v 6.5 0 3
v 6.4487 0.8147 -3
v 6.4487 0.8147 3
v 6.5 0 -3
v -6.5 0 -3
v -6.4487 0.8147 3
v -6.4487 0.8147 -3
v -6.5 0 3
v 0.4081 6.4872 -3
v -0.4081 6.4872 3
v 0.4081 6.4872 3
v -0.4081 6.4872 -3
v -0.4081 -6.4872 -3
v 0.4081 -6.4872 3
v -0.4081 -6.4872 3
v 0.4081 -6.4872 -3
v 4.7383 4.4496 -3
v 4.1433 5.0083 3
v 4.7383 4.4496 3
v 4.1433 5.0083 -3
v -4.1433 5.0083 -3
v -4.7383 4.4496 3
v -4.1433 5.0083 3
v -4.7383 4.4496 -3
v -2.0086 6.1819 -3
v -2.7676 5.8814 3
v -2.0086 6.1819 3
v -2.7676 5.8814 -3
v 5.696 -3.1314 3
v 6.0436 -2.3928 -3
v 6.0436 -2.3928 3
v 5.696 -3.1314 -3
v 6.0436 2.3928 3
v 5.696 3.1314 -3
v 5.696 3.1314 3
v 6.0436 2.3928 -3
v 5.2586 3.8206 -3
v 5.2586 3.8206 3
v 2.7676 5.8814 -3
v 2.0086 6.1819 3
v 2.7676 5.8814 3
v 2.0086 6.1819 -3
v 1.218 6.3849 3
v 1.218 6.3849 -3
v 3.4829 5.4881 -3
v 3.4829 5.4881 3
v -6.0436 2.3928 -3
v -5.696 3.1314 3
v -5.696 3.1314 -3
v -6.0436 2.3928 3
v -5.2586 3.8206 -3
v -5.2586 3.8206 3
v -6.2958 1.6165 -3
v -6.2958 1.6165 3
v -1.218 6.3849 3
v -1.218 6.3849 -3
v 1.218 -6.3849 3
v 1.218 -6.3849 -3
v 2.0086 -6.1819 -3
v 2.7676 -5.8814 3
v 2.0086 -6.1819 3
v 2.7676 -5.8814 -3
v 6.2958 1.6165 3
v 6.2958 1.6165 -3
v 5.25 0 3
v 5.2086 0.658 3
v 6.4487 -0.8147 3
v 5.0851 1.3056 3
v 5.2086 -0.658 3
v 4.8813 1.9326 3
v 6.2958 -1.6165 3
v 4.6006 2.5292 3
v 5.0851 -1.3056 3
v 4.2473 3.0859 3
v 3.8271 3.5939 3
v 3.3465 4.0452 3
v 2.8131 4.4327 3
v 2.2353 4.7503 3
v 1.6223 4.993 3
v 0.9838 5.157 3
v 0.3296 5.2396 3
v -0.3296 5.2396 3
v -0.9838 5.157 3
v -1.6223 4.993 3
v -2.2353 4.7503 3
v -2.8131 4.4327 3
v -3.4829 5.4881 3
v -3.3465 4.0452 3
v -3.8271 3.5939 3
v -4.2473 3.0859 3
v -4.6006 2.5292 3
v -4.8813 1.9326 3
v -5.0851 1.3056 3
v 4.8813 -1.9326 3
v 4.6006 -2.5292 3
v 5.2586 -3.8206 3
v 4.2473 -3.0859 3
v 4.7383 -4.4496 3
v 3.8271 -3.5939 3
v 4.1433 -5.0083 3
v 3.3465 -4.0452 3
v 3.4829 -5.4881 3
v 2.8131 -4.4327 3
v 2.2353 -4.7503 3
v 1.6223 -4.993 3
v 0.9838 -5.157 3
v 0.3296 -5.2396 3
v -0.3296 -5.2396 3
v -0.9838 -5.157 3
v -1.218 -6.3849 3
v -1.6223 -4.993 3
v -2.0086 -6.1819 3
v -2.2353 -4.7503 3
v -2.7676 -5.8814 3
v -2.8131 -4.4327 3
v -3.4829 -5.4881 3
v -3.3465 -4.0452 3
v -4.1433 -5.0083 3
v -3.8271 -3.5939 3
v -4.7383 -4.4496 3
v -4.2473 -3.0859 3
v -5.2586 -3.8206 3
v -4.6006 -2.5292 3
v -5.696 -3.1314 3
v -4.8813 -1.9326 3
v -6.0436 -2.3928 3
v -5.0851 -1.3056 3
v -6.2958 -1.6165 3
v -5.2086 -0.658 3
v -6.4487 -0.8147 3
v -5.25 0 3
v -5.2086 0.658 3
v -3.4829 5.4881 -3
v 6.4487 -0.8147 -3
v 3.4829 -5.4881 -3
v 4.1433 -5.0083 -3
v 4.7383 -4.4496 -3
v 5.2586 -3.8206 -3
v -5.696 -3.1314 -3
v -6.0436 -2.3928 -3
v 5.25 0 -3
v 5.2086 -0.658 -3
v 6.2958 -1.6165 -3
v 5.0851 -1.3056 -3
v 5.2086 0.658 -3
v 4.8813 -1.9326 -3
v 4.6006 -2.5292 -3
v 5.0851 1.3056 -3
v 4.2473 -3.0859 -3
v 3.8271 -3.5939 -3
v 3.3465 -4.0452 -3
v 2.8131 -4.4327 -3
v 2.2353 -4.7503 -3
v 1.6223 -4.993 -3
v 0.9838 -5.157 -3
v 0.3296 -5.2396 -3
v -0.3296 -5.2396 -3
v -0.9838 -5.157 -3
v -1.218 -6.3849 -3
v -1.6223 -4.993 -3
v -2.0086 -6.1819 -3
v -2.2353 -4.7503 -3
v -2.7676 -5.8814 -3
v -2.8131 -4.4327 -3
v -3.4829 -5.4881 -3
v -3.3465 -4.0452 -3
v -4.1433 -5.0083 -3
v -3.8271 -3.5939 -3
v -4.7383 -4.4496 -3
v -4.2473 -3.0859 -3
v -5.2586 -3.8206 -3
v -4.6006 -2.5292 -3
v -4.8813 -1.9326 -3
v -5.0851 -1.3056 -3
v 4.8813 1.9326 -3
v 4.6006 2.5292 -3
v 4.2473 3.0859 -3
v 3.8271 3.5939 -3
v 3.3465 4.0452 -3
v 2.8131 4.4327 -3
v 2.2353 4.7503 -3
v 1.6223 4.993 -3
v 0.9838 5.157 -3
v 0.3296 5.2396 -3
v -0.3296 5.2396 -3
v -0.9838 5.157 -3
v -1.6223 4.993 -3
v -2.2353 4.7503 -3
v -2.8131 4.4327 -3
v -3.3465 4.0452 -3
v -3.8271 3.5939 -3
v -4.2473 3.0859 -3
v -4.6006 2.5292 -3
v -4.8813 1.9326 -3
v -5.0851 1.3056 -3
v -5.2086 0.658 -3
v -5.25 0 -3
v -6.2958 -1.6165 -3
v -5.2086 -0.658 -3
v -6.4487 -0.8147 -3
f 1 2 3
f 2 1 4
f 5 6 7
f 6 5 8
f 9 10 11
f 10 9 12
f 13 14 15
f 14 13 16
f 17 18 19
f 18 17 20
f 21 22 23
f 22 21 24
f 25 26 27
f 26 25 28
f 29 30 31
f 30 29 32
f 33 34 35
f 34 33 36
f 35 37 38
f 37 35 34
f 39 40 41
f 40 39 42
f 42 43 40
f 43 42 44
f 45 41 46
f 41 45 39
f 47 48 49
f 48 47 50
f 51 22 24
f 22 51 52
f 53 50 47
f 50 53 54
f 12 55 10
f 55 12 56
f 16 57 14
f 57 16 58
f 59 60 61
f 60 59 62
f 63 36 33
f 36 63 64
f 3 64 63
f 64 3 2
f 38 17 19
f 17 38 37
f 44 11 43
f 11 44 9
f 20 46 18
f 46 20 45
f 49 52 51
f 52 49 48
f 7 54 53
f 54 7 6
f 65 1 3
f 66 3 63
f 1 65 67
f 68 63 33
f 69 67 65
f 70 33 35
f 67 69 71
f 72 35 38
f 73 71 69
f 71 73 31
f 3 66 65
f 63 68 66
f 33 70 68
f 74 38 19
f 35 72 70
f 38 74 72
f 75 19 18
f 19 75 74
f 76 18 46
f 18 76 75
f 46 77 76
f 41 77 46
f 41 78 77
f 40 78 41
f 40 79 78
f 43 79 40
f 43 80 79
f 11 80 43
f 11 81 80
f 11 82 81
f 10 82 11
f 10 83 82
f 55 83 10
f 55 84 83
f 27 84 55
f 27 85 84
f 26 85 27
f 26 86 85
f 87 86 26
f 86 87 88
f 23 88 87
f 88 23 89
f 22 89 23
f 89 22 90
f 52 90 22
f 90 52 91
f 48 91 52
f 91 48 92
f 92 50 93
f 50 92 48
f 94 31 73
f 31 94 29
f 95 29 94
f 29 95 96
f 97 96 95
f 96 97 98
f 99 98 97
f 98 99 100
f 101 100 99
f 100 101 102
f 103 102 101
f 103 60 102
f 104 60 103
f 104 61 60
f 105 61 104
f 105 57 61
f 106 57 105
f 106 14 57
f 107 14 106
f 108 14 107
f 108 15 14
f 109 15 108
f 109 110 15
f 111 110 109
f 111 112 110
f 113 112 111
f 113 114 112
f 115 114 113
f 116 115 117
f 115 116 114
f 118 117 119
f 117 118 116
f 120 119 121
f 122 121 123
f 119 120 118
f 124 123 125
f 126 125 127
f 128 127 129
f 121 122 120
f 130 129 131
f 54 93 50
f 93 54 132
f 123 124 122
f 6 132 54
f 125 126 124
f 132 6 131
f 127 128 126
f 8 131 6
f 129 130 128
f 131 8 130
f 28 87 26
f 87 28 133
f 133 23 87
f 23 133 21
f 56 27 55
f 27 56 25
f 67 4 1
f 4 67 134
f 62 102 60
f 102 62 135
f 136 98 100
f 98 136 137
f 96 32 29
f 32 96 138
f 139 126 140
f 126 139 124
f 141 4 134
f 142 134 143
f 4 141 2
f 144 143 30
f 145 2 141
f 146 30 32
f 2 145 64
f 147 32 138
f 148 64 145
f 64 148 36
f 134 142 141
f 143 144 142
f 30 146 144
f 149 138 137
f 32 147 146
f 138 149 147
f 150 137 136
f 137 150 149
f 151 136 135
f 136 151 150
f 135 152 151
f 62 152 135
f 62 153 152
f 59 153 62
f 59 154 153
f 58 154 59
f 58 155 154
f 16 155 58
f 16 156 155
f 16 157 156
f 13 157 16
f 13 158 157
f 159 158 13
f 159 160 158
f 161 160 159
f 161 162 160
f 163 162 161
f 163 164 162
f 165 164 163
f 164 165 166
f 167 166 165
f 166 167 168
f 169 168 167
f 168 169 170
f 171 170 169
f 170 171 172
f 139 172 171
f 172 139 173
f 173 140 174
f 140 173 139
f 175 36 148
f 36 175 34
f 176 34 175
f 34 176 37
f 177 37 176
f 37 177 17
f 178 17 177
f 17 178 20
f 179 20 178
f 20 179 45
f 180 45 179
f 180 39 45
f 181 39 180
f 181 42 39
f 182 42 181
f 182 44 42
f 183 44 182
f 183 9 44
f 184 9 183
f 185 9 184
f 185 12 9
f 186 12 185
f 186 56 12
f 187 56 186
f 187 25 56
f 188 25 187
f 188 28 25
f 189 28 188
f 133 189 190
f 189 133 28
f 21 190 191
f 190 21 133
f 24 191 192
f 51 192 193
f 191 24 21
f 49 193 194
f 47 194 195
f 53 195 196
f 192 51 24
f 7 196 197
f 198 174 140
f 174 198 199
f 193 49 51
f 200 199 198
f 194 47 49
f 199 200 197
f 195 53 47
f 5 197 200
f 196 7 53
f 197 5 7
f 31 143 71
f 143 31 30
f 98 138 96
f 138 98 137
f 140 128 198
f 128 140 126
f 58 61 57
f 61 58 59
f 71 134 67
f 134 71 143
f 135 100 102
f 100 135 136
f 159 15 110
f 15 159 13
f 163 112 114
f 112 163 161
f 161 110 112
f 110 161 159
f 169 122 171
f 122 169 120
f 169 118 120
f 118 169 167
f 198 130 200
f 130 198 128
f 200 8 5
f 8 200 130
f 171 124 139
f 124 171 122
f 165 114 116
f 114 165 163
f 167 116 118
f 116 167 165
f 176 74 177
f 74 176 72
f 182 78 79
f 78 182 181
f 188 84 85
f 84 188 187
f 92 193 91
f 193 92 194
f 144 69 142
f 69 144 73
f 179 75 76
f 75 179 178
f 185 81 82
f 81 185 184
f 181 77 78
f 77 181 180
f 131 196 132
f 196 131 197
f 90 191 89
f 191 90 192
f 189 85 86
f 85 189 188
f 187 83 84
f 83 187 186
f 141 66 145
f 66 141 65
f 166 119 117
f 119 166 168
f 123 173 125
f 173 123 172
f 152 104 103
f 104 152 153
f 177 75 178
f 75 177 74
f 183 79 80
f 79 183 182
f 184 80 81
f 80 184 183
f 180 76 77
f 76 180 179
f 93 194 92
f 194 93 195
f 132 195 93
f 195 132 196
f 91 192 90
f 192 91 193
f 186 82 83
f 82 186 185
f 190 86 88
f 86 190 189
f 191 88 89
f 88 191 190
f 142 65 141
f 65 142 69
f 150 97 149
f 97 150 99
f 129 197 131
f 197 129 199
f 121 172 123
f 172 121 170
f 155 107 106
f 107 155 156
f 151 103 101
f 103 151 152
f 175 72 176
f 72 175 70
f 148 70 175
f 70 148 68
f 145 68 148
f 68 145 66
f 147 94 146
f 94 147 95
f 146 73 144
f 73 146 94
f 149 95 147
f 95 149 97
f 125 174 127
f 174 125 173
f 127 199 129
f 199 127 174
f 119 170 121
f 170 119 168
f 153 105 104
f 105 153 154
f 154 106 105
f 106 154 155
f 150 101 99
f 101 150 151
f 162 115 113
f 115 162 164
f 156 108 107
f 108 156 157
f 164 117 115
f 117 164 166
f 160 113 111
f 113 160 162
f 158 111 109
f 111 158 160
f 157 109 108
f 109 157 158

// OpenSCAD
$fn = 50;


difference() {
	union() {
		translate(v = [0, 0, -3.0000000000]) {
			cylinder(h = 6, r = 6.5000000000);
		}
	}
	union() {
		translate(v = [0, 0, -100.0000000000]) {
			cylinder(h = 200, r = 5.2500000000);
		}
	}
}
